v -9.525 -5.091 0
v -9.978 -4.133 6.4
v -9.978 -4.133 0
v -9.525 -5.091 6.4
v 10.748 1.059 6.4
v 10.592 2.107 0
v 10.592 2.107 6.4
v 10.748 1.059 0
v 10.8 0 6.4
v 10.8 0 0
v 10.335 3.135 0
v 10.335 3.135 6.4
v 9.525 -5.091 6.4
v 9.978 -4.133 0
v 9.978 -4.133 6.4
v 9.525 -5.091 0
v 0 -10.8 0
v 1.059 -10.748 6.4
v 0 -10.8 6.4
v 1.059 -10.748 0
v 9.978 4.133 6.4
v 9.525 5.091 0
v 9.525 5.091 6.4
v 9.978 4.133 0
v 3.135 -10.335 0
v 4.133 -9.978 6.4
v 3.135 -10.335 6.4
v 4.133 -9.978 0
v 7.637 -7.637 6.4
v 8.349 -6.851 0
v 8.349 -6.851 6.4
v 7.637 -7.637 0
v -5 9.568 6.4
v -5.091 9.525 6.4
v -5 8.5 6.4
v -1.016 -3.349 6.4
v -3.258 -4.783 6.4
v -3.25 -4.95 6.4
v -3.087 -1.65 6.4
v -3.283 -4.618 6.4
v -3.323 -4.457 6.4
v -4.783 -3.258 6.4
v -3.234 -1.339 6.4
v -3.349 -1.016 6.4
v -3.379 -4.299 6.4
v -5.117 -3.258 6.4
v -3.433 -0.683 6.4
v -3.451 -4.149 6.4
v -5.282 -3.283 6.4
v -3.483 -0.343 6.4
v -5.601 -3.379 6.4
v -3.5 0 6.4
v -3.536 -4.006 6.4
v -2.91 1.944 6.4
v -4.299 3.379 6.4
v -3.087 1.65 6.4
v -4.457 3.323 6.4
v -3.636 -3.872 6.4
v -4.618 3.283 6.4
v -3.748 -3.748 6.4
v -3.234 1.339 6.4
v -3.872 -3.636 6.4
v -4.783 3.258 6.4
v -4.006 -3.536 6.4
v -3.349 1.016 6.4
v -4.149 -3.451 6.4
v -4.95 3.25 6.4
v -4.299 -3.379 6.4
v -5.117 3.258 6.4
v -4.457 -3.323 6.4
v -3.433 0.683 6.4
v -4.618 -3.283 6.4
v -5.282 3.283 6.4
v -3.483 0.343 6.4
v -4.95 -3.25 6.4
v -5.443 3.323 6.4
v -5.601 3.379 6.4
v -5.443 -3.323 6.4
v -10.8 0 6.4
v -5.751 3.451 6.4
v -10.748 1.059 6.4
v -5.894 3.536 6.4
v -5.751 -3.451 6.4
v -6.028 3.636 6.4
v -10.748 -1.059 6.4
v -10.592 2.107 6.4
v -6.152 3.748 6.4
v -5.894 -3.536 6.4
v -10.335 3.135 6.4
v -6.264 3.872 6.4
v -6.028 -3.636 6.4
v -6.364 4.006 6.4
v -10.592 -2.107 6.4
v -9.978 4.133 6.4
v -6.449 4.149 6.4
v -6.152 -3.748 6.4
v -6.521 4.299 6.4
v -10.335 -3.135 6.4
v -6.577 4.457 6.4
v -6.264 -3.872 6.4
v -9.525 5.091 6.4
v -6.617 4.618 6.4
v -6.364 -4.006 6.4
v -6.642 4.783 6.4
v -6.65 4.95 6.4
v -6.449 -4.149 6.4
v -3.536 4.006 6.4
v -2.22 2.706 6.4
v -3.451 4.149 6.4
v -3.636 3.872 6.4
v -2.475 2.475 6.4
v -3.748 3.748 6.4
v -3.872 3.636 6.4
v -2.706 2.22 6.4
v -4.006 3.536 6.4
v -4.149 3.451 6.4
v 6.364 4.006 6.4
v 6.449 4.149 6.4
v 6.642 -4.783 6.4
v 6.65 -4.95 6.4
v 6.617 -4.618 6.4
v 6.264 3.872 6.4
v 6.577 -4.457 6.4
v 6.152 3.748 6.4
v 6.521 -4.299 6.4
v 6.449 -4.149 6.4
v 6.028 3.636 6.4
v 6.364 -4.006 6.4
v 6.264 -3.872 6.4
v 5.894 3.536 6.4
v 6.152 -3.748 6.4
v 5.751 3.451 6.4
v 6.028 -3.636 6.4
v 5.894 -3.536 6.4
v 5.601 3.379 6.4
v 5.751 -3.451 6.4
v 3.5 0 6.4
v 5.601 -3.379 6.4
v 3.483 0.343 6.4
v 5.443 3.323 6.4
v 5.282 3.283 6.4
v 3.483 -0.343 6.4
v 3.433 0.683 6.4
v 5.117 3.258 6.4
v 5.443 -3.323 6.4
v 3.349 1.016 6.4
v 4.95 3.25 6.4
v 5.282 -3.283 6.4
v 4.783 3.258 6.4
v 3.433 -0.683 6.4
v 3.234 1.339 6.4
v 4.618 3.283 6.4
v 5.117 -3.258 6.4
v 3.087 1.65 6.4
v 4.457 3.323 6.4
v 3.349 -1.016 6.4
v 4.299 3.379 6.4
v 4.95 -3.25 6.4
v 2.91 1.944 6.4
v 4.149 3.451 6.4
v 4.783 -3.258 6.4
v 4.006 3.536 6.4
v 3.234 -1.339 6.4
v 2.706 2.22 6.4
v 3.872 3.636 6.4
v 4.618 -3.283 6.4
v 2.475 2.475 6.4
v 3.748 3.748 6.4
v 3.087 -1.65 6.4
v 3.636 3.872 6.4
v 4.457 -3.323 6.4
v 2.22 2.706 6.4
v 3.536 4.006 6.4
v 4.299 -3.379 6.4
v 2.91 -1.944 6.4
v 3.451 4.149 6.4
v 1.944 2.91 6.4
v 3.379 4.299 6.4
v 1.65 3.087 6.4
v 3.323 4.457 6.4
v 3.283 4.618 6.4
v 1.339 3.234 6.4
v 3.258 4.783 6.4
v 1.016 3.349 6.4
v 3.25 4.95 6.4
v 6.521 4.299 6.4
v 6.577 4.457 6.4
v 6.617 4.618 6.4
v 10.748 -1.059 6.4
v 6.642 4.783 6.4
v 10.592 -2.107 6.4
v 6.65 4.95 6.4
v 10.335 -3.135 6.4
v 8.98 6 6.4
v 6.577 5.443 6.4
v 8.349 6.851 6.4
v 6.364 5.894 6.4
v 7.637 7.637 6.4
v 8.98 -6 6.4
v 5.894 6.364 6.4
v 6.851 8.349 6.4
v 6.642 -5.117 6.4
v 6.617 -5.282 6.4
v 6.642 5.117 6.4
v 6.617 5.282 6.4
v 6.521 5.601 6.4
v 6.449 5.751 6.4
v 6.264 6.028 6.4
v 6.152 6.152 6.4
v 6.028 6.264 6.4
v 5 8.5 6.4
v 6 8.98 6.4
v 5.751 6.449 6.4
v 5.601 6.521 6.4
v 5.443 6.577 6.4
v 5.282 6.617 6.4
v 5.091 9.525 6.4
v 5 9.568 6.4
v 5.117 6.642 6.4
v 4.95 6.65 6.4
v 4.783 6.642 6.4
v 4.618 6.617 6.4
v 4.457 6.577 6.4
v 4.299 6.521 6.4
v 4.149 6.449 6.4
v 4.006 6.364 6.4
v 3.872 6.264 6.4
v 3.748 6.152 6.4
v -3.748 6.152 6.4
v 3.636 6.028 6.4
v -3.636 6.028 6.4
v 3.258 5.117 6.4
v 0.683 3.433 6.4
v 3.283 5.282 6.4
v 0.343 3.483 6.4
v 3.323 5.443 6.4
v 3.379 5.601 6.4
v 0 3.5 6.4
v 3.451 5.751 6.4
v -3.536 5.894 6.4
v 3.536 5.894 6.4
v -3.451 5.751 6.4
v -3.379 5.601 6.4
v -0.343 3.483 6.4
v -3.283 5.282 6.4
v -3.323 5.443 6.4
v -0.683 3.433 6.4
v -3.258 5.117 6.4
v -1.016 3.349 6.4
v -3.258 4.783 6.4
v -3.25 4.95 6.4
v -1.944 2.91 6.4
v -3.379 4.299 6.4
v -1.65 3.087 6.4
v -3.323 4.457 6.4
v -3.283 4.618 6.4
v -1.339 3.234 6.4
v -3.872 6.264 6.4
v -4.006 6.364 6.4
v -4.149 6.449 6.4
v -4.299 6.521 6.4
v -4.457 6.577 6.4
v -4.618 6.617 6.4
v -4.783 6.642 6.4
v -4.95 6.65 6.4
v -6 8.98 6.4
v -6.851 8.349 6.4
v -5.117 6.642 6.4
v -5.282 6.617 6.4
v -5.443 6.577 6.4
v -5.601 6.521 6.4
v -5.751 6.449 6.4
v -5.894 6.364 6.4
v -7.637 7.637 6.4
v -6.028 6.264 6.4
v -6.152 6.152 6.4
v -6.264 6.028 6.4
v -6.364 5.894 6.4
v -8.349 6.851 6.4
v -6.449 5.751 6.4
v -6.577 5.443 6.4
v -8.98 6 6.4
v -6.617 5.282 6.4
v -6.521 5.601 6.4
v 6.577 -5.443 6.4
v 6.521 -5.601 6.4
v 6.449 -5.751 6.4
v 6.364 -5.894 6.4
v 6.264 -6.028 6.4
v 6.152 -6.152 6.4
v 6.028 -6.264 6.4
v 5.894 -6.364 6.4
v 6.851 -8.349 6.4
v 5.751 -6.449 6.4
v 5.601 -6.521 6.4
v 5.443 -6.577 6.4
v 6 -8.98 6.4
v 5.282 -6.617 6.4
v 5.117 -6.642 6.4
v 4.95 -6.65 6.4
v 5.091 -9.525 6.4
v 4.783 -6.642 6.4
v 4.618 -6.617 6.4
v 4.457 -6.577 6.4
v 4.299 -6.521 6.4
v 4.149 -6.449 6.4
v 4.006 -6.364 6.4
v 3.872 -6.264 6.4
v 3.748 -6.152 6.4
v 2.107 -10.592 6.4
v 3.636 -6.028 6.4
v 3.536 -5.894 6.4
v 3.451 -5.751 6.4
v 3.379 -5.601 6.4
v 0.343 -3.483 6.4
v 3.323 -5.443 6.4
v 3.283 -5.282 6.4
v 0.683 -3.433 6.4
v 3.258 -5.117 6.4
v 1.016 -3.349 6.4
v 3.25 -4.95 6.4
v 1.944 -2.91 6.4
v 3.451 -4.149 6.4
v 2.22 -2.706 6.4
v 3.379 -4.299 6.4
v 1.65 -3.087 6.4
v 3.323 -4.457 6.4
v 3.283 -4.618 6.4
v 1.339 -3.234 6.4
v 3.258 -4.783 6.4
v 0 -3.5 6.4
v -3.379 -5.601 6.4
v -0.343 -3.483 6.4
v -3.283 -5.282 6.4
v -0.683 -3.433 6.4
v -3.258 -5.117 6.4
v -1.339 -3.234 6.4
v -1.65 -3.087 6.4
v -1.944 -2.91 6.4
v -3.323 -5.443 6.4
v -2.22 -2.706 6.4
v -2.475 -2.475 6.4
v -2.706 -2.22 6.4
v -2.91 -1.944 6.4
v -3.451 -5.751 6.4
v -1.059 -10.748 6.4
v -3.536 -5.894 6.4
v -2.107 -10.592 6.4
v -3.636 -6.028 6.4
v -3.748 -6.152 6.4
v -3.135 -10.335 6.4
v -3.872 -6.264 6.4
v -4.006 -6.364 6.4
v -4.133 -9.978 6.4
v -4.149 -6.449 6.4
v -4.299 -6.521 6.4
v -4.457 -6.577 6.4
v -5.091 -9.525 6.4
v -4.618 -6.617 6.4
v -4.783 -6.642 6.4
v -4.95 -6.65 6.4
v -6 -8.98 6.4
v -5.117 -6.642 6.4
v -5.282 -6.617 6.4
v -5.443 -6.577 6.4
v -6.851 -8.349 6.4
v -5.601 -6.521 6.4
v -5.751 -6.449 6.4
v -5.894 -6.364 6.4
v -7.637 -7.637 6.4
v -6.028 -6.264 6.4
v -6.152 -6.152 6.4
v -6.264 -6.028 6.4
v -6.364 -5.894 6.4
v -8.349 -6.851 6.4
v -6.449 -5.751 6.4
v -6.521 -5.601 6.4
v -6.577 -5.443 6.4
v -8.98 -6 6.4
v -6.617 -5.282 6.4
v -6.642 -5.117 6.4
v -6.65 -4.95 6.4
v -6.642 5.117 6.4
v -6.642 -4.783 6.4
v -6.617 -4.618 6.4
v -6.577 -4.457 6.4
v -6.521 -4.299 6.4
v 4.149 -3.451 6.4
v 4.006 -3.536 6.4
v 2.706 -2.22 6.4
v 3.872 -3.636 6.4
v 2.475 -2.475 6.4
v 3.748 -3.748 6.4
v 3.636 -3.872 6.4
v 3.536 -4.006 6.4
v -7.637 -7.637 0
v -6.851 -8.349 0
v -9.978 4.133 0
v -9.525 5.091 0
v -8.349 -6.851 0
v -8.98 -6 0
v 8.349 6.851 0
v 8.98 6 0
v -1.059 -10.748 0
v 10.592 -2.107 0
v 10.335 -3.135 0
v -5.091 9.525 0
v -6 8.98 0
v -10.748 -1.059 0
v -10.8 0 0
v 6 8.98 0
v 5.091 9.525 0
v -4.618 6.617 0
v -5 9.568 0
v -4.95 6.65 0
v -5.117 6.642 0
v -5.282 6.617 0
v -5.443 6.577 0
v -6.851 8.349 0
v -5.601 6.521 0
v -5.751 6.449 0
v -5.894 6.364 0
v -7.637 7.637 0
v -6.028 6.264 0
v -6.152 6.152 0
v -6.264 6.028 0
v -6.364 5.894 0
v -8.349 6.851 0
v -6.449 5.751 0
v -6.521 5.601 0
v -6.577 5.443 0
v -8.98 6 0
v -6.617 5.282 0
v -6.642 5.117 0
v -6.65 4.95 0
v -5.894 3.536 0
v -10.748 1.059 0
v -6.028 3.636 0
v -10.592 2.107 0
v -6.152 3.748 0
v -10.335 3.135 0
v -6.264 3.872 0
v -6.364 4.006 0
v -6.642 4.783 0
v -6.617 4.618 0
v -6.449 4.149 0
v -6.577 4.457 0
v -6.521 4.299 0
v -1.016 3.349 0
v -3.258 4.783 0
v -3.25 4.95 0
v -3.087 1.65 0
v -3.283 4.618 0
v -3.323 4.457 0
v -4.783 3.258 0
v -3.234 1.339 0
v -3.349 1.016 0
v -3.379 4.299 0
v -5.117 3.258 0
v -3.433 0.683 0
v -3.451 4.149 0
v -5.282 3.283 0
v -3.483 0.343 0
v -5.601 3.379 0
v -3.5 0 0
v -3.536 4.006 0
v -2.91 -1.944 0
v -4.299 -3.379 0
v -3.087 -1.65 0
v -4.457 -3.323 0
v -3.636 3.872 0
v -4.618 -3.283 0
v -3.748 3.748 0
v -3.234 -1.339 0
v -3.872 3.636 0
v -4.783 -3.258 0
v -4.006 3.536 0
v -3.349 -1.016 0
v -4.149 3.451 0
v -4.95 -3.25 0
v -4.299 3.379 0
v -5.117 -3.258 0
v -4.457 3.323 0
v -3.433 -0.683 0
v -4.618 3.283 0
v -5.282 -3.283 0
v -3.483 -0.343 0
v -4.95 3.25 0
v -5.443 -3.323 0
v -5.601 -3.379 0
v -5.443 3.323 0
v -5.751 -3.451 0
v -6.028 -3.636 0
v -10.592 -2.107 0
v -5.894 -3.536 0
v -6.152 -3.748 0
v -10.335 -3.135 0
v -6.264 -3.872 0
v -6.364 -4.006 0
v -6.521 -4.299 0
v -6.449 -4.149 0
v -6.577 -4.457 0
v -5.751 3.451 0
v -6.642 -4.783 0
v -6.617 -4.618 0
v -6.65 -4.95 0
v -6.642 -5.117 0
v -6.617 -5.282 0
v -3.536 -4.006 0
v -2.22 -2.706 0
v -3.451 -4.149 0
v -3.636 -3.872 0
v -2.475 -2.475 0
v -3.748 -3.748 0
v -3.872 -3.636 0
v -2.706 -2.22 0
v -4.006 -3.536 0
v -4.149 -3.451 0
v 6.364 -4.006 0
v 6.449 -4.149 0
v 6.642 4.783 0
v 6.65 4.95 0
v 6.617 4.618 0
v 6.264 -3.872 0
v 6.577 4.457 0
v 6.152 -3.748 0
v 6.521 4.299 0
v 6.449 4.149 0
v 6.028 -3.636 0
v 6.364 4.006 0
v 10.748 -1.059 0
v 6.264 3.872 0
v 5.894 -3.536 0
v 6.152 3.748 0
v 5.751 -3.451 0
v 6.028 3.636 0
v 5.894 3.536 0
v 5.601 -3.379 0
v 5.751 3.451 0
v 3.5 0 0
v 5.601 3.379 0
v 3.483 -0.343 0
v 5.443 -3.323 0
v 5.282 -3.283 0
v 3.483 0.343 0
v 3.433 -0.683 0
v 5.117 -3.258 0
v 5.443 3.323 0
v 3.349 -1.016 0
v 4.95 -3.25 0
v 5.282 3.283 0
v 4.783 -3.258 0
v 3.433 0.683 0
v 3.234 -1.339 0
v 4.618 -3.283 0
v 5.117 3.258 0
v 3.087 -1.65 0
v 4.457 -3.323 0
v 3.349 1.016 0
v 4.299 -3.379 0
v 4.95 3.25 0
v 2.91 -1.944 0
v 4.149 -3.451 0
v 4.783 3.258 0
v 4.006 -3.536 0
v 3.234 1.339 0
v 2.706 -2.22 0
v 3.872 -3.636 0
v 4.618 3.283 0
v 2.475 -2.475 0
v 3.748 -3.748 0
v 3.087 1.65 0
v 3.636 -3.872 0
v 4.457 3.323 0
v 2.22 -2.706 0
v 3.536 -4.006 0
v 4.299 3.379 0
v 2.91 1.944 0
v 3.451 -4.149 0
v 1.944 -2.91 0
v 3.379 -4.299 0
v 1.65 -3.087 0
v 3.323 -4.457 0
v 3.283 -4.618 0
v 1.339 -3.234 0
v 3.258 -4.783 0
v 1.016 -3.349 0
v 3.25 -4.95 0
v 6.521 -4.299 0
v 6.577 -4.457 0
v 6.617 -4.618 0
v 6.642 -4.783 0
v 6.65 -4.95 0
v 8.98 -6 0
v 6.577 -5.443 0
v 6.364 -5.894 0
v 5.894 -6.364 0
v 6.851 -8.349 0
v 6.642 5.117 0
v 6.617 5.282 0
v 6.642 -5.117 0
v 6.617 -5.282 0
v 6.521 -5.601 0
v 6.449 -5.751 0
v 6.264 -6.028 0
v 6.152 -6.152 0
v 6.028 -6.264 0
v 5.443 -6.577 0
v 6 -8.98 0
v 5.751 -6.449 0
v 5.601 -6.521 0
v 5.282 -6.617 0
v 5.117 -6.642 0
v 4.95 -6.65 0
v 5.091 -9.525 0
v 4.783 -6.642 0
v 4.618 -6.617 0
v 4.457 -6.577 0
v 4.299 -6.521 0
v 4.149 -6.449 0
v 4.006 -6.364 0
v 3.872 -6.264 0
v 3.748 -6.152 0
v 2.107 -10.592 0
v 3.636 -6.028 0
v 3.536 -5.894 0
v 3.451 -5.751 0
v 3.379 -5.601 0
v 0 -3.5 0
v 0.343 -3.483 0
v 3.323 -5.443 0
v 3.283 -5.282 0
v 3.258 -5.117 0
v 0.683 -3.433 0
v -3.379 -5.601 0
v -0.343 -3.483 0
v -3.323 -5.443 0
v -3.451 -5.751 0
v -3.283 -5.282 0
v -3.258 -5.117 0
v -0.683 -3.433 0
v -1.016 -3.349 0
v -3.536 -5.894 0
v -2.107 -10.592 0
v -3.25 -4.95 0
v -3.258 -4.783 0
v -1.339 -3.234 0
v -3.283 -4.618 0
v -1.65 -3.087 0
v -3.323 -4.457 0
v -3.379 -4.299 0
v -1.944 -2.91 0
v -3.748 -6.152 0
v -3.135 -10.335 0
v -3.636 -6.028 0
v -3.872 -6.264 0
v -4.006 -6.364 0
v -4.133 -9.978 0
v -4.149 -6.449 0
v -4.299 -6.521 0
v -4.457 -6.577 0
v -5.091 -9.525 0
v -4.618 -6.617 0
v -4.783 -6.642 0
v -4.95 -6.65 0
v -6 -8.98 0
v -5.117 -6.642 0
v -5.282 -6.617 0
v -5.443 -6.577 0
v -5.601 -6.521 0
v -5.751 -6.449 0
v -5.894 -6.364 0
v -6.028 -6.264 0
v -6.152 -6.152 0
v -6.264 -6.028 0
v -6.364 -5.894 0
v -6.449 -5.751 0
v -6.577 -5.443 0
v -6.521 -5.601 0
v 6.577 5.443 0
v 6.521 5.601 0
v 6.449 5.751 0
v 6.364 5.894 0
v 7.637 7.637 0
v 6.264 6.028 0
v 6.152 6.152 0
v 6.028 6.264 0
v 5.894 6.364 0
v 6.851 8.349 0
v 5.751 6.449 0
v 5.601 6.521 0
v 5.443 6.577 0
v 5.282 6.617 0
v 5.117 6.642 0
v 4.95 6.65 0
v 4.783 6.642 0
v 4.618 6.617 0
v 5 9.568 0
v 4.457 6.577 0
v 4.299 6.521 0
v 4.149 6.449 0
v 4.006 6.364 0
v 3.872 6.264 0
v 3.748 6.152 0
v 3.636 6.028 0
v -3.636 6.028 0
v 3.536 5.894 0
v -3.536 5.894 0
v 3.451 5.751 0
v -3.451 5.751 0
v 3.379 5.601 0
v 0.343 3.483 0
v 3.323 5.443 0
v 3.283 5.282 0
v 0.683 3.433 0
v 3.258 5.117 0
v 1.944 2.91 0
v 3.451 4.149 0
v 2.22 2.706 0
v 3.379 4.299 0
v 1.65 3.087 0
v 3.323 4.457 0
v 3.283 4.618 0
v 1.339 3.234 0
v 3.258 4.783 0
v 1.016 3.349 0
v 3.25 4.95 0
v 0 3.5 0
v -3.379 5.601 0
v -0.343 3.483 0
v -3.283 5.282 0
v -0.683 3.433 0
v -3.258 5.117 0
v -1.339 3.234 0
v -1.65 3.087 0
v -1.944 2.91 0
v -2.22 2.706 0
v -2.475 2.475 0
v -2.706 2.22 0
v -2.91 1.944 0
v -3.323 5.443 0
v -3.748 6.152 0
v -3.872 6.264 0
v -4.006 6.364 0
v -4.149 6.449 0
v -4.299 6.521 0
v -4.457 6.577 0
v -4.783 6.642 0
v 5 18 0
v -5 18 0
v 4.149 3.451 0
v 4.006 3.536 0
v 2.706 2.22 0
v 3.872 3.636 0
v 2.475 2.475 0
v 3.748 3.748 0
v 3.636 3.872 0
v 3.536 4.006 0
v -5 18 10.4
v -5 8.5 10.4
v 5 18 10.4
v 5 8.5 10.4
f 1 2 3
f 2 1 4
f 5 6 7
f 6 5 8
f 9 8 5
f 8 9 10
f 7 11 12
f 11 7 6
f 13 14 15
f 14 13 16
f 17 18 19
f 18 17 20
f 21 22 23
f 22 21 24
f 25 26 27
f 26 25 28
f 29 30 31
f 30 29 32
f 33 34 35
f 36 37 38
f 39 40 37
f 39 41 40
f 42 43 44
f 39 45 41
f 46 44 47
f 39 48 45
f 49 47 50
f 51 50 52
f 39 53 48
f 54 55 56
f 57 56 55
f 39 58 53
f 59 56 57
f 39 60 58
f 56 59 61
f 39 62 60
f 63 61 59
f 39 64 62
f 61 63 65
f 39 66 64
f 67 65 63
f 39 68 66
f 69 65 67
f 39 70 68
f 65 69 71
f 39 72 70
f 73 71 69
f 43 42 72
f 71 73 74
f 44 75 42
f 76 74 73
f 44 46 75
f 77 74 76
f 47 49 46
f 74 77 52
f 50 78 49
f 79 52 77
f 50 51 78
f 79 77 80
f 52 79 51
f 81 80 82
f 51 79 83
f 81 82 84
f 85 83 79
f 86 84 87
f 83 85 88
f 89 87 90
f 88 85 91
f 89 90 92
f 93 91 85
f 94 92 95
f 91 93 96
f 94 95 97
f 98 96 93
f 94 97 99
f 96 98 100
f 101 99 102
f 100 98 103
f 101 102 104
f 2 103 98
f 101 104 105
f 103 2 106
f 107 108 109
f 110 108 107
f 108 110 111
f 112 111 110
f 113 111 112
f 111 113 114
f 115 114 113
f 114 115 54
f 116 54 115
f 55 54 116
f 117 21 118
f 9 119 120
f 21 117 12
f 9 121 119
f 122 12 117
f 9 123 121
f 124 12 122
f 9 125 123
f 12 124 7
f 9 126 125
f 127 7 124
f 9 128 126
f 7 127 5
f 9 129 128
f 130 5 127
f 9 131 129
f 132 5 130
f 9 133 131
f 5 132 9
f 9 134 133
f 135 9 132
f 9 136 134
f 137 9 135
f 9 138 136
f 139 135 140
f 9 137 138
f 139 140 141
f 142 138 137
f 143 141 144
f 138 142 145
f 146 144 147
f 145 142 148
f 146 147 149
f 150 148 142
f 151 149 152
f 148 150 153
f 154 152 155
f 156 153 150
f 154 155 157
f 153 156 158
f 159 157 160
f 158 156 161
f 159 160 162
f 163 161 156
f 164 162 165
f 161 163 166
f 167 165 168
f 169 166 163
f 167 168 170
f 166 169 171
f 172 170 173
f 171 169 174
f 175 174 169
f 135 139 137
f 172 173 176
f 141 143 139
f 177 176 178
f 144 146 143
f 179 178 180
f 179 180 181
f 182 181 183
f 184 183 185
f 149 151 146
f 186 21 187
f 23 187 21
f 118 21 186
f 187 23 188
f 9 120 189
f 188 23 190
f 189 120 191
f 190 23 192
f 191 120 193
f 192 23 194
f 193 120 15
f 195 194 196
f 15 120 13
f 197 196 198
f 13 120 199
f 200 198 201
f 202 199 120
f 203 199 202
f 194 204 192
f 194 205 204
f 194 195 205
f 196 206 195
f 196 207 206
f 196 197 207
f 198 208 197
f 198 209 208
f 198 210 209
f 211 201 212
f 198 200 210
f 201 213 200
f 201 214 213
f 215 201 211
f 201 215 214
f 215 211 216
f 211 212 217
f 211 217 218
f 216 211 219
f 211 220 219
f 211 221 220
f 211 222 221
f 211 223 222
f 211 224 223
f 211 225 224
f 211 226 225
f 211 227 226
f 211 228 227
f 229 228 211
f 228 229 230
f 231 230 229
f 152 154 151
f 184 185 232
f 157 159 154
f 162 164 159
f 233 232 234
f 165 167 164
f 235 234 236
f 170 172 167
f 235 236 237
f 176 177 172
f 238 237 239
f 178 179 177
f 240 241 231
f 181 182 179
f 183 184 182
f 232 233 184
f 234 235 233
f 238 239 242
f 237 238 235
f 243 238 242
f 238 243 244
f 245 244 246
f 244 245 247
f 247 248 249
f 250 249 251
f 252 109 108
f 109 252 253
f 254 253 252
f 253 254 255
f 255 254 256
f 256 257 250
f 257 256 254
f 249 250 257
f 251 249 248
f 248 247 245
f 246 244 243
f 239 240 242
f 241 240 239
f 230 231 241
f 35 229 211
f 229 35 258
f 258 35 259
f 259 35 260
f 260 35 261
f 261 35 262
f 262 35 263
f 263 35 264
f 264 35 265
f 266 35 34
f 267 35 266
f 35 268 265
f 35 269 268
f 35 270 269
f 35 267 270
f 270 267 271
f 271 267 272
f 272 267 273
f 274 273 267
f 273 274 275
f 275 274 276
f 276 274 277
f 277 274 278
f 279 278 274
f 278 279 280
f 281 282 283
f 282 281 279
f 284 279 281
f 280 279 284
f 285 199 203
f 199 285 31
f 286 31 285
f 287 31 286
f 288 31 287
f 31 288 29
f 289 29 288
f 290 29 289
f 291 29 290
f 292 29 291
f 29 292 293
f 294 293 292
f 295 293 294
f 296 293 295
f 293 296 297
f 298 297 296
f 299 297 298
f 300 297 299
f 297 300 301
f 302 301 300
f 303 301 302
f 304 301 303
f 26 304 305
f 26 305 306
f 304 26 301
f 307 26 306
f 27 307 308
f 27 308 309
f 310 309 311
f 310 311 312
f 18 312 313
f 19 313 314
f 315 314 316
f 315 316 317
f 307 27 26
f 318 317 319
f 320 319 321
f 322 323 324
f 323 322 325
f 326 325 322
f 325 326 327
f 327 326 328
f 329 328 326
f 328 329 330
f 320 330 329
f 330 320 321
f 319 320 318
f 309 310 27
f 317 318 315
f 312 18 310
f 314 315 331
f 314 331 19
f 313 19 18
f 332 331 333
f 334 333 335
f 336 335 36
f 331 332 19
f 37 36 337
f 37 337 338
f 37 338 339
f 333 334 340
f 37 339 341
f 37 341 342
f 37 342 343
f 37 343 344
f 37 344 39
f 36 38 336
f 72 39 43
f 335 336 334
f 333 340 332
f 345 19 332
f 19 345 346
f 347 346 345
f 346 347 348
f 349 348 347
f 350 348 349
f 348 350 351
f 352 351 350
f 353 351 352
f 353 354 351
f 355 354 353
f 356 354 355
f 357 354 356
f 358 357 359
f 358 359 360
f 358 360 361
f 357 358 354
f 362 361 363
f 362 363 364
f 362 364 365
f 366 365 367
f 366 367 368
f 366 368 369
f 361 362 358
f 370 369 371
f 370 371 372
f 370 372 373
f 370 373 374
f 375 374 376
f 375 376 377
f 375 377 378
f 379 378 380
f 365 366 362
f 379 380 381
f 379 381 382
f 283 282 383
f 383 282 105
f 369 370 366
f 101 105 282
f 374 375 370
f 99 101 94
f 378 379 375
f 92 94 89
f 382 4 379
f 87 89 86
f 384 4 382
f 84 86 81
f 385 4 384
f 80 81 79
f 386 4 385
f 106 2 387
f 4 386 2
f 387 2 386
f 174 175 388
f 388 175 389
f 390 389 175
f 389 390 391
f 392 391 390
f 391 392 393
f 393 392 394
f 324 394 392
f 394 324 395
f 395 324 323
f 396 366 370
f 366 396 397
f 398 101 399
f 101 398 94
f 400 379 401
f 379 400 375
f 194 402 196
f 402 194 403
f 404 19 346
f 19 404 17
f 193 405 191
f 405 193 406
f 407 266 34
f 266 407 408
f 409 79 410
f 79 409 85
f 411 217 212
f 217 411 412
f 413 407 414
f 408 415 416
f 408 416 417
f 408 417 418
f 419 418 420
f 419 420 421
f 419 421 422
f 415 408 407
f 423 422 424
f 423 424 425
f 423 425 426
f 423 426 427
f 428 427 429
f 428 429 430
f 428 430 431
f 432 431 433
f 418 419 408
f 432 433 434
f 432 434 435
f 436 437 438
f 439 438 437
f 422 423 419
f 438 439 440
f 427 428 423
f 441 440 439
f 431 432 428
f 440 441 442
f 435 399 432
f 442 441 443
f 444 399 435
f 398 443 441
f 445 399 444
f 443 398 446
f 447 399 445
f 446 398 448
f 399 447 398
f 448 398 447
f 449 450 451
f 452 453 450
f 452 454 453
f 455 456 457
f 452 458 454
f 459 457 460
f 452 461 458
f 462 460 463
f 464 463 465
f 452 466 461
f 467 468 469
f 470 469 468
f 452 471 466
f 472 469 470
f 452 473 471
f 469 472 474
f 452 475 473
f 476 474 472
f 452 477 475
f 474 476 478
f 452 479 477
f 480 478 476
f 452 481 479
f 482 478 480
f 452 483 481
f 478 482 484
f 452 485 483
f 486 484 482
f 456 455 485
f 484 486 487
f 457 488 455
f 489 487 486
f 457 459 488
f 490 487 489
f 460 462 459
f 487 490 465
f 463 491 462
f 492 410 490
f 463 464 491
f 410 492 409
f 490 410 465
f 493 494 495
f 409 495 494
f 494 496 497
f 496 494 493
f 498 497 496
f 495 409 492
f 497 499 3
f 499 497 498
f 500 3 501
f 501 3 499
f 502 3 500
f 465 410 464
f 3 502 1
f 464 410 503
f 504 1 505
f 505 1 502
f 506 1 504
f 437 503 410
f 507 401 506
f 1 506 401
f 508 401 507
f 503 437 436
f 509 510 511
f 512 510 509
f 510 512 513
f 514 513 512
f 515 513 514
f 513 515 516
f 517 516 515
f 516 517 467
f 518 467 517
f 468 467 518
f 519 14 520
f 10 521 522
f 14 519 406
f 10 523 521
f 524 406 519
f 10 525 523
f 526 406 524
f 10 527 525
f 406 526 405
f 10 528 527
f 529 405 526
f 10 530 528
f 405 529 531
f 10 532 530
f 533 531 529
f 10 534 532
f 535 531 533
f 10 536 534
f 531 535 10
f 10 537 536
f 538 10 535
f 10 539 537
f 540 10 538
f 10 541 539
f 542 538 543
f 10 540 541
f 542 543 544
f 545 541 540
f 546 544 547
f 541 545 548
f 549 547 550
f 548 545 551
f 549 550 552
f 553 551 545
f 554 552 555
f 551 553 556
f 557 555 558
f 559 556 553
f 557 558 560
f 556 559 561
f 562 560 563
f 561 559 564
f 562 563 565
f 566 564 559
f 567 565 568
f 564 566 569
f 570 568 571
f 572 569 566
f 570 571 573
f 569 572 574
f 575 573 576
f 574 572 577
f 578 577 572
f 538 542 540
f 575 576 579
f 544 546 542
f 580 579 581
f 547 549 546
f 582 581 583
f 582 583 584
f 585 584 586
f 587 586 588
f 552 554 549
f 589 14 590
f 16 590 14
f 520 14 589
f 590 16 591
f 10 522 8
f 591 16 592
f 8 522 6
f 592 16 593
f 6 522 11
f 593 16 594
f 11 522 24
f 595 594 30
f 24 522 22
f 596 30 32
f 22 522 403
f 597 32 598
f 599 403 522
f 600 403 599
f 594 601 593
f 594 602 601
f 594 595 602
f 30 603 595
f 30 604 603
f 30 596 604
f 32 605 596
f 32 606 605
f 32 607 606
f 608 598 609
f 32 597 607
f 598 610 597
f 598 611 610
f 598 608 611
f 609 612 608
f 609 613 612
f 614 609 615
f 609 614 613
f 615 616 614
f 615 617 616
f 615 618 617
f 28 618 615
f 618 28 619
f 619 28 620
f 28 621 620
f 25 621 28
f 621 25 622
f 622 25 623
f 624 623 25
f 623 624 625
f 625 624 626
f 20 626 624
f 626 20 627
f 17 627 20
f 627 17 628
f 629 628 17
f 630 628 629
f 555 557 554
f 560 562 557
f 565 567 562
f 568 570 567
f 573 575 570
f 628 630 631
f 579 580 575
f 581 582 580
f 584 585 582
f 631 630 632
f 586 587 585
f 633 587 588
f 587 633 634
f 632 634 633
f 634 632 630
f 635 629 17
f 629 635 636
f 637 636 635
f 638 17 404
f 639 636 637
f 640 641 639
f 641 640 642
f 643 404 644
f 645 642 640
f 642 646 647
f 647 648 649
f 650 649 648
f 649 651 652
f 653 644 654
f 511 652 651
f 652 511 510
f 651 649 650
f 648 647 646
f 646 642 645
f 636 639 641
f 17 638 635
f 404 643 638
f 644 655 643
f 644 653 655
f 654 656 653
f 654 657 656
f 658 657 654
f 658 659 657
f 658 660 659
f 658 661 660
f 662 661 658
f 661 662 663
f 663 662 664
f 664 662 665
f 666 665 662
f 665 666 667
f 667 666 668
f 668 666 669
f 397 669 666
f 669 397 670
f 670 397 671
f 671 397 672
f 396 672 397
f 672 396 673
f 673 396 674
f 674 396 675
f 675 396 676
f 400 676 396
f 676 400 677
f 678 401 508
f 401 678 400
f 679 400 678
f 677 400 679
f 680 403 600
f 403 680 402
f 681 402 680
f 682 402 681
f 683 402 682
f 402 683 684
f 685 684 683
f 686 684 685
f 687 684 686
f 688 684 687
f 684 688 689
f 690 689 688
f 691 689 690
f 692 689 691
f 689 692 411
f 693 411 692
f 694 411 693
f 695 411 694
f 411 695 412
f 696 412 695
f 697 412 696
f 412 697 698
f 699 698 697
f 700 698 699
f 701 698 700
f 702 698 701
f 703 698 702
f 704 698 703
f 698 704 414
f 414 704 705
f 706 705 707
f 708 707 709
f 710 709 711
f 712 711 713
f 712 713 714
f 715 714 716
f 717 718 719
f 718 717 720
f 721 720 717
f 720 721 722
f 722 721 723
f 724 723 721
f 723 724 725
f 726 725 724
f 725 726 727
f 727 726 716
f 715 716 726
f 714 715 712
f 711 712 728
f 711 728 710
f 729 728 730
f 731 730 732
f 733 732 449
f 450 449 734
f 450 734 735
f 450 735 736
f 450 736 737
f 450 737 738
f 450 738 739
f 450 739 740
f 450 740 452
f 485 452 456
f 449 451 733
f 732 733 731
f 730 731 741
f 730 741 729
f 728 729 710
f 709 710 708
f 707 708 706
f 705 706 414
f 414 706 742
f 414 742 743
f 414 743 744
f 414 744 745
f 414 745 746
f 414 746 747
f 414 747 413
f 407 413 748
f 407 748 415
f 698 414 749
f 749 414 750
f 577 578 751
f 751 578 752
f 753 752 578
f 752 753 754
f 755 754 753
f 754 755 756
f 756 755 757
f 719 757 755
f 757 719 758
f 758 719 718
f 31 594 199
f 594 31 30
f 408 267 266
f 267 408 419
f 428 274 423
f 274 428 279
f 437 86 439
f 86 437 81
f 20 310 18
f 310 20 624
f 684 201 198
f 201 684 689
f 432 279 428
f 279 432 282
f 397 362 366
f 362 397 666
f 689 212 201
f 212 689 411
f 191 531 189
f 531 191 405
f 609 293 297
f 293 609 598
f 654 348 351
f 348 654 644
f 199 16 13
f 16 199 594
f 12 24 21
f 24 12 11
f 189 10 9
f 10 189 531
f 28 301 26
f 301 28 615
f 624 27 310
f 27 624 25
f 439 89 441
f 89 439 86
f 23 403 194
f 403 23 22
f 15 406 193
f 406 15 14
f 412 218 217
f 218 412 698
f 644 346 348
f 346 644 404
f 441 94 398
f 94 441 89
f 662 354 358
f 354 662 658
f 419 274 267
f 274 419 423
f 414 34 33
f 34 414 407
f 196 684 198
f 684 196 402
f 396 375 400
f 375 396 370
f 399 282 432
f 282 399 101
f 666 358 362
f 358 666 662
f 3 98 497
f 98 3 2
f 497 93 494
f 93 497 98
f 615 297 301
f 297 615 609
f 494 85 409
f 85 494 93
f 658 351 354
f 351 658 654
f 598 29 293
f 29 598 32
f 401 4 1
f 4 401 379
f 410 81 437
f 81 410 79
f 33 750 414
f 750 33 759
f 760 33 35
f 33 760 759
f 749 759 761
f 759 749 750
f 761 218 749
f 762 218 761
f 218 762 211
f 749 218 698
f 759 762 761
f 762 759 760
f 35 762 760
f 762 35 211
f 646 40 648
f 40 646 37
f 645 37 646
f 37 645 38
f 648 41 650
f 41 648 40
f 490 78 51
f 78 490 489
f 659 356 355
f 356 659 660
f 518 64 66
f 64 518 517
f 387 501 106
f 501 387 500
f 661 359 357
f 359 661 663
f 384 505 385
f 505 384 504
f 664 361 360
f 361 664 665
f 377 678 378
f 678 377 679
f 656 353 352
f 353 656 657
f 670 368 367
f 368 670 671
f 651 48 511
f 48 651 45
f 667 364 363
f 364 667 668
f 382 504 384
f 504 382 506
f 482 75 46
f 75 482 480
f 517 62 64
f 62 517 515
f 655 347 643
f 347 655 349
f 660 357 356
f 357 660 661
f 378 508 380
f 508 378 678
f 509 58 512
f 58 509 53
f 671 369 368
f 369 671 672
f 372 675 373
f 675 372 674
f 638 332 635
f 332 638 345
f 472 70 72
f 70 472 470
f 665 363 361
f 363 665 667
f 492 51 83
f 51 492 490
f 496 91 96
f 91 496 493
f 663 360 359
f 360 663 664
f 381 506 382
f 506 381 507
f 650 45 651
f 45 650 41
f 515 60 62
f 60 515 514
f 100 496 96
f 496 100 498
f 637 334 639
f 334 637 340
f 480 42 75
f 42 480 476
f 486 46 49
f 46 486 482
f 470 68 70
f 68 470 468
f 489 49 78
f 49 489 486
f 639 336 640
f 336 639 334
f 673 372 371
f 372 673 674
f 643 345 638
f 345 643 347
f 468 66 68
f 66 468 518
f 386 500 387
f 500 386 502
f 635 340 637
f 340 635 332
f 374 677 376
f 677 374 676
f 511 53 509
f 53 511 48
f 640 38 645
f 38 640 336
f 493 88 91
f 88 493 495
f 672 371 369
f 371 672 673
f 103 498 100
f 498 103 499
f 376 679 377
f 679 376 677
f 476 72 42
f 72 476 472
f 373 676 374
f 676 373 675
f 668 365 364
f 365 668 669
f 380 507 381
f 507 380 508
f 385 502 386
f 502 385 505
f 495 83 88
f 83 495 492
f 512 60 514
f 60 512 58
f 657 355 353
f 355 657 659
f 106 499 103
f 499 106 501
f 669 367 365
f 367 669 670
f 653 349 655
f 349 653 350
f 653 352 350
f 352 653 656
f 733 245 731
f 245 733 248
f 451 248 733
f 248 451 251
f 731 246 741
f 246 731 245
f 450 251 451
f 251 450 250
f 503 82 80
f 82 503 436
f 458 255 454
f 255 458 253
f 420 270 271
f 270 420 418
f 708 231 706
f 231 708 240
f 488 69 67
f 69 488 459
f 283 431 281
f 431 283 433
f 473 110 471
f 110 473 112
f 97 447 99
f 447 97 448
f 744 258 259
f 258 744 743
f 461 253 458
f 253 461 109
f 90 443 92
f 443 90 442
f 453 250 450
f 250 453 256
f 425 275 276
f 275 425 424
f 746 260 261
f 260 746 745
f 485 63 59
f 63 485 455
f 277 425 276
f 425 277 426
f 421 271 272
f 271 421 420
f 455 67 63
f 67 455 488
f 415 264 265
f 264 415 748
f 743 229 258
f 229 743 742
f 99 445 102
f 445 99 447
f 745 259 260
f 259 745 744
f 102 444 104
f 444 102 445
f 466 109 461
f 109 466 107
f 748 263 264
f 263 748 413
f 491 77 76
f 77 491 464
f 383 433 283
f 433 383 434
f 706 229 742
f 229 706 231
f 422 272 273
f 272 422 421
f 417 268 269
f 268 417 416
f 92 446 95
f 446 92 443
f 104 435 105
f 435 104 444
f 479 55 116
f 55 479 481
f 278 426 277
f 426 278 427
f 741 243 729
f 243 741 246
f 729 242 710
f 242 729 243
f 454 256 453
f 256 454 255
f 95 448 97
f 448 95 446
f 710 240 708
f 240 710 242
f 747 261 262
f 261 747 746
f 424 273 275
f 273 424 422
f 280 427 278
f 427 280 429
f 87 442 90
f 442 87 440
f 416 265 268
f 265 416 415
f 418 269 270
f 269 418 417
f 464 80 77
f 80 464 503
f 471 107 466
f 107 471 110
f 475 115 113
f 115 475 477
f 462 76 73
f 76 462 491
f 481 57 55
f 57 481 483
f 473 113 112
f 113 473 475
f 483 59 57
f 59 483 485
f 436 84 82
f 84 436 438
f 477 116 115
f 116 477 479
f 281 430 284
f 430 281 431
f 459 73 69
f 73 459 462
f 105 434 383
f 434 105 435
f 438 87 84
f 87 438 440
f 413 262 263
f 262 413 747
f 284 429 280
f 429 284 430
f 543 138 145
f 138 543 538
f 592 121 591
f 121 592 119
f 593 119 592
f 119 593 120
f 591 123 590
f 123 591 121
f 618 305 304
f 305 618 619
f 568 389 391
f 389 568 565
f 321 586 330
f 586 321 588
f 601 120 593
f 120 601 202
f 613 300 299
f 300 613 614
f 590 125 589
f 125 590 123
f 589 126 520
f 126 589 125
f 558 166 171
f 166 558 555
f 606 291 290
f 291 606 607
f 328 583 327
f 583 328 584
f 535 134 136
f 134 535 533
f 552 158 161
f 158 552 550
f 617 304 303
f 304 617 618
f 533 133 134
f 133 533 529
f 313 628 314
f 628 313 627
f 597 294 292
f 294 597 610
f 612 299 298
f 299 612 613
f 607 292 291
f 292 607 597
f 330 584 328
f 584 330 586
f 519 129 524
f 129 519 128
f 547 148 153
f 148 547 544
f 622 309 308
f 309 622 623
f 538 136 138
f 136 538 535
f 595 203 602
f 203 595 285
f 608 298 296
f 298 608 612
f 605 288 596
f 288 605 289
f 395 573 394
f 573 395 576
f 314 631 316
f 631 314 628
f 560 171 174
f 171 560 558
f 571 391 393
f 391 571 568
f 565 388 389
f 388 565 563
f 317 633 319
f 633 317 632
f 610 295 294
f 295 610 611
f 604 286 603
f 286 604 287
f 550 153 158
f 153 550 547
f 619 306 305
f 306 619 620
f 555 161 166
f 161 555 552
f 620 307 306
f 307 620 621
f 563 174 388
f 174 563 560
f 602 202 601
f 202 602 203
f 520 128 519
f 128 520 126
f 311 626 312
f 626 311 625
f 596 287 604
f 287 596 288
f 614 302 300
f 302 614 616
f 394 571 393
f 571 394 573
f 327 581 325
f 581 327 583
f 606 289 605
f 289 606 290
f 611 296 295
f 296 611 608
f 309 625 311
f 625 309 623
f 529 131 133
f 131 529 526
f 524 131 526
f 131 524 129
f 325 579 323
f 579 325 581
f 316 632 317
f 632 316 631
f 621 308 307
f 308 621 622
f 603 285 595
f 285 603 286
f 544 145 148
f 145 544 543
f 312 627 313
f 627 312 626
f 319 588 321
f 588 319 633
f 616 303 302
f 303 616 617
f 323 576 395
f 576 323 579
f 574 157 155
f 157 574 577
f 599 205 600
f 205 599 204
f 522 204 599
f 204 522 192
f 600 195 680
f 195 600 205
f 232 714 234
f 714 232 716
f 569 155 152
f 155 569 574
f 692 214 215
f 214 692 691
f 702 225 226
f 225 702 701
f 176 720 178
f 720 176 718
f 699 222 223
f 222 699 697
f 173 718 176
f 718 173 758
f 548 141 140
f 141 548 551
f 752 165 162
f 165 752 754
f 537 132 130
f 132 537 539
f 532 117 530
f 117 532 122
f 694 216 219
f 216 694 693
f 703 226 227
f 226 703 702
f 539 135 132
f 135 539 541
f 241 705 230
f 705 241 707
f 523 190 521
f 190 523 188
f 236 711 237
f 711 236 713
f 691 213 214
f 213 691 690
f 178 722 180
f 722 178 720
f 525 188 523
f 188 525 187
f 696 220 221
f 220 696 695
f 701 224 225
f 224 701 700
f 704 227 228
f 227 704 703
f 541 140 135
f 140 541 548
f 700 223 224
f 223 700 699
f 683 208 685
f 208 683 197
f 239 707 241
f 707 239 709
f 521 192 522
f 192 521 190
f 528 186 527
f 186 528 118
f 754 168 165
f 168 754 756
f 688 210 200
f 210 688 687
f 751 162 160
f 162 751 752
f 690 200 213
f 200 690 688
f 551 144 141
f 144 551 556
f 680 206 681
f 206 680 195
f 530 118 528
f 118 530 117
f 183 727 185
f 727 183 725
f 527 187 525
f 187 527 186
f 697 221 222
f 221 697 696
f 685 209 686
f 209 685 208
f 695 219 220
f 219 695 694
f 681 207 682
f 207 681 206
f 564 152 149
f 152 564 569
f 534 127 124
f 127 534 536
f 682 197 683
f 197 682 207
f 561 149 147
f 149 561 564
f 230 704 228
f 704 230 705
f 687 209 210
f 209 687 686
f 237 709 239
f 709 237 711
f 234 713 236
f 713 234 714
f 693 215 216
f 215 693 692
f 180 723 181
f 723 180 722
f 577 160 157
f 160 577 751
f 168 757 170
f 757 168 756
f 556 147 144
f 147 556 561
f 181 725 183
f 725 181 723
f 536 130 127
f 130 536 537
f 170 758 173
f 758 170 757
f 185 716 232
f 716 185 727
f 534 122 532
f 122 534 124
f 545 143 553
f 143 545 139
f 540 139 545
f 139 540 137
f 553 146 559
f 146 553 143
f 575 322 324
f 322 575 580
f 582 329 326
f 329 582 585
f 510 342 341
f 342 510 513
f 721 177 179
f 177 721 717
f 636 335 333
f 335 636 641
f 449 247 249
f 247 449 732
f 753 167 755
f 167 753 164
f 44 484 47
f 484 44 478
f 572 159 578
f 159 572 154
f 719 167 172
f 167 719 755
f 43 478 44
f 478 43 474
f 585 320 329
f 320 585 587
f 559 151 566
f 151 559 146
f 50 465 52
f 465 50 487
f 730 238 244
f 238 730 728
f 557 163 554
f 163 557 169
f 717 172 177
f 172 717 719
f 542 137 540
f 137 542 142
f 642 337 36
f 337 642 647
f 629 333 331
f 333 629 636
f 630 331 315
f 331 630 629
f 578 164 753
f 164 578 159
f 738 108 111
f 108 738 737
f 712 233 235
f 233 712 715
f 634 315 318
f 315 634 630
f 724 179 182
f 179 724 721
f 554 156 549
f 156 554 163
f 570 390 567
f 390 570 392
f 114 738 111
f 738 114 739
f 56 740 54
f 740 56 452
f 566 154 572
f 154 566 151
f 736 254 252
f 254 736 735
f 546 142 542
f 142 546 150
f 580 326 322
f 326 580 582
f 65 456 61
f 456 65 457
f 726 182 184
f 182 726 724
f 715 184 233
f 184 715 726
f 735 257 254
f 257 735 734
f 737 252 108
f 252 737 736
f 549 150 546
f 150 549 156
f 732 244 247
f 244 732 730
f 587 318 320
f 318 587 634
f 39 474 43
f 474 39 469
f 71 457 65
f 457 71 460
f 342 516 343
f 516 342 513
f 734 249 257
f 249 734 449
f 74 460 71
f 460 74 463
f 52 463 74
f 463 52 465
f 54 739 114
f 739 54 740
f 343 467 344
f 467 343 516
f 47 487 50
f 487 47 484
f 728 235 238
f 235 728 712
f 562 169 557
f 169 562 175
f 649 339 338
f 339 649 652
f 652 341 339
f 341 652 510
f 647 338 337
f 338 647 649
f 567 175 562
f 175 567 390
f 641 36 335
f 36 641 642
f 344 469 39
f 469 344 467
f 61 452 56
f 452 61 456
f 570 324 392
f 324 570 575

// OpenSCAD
// file: ../params.scad
// =====================================================================
//  Pip v2 — assembly-first robot dog. Shared parameters (mm).
//  Design rules: docs/ASSEMBLY_FIRST_DESIGN.md §3. Every part is built
//  by straight-down moves; the precision lives in the parts.
//  Keep in sync with software/config.yaml (tests/test_cad_sync.py checks).
// =====================================================================
$fn = 64;

// ---------- Feetech STS3215 bus servo (12 V, 30 kg·cm) ------------------
// Measured from the SO-ARM100 project's STS3215 model. Servo frame used
// below: origin = output axis on the case top face, +Z = shaft, +X = long
// axis from the shaft toward the far end of the case.
servo_len       = 45.4;
servo_wid       = 24.8;
servo_case_h    = 32.0;   // top face -> case bottom
servo_bottom    = 4.0;    // rear idler disc + connector pins below the case
servo_shaft_off = 10.2;   // shaft centre -> near end of the case
horn_d          = 20.0;   // aluminium disc horn
horn_t          = 1.6;
horn_hole_sq    = 9.9;    // 4 tapped M3 holes on a 9.9 mm square
horn_screw_clear_d = 7.0; // centre spline-screw head clearance
servo_mass_g    = 55;     // assumed (not measured)

// ---------- one fastener for everything: M3 x 8 socket head -----------
screw_len   = 8;
m3_clear    = 3.4;
m3_pilot    = 2.6;        // self-tapping an M3 machine screw into PETG
fit         = 0.3;        // clearance around servo cases & docks
lead_in     = 1.5;        // chamfer on every mating edge (capture range)

// ---------- servo cup (the one standard servo holder) ------------------
cup_side    = 3.5;
cup_end     = 8.0;        // end walls carry the cap screws
cup_floor   = 2.5;
cup_depth   = servo_case_h + servo_bottom + cup_floor;     // 38.5
cup_x0      = -servo_shaft_off - fit - cup_end;            // -18.5
cup_x1      = servo_len - servo_shaft_off + fit + cup_end; //  43.5
cup_hw      = servo_wid / 2 + fit + cup_side;              //  16.2
cap_t       = 1.2;        // thinner than the horn so links clear it
cap_screw_x = [cup_x0 + cup_end / 2, cup_x1 - cup_end / 2];
cap_screw_y = 9;

// link plates bolt straight onto the horn: plate + horn = screw length
link_t      = screw_len - horn_t;                          // 6.4

// ---------- grip lug (rule 7): flats 20 mm apart + 3 mm datum notch ----
lug_w = 20; lug_h = 8; datum = 3;

// ---------- body / leg layout (body frame: X fwd, Y left, Z up) -------
bx        = 95;    // hip axis X (front +, rear -)
rim_y     = 45;    // |Y| of the pitch servo top face = tray side face
L2        = 100;   // hip axis -> knee axis
L3        = 100;   // knee axis -> foot ball centre
foot_d    = 22;
// lateral stack, measured outward from the pitch-servo top face
upper_in  = rim_y + horn_t;            // 46.6
upper_out = upper_in + link_t;         // 53.0 = knee servo top face
lower_in  = upper_out + horn_t;        // 54.6
lower_out = lower_in + link_t;         // 61.0
foot_y    = (lower_in + lower_out) / 2;// 57.8  (software: geometry.foot_y)

// tray
tray_wall   = 3;
tray_floor  = 3;
tray_z0     = cup_x0 - tray_floor;     // -21.5 (hip block bottom = floor top)
tray_z1     = cup_x1;                  //  43.5 (hip block top = deck bottom)
sock_wall   = 3;
sock_hw     = cup_hw + fit;            // socket half width in X
tongue_w    = 5; tongue_d = 2.5;
tongue_y    = -(rim_y - cup_depth / 2);// tongue centre (Y, right side)
sock_in_y   = -(rim_y - cup_depth) + fit;   // socket inboard wall inner face
tray_hx     = bx + sock_hw + tongue_d + sock_wall + 0.5;
deck_t      = 3;

// neck: pan servo cup built into the tray, rim just above the deck
pan_x     = 53;
pan_rim_z = tray_z1 + deck_t + 0.1;    // 46.6
bracket_z0 = pan_rim_z + horn_t;       // pan bracket sits on the horn
bracket_z1 = bracket_z0 + link_t;
// tilt servo stands upright in a sleeve on the bracket, shaft -> -Y
tilt_top_y = -14;                      // tilt servo top face (Y)
tilt_rest  = 3.5;                      // servo rests on ribs clear of the pan-horn screw heads
tilt_z     = bracket_z1 + tilt_rest + fit + (servo_len - servo_shaft_off); // tilt axis Z
sleeve_wall = 6;                       // thick X walls take the cap screws

echo(str("foot_y=", foot_y, "  tray=", 2*tray_hx, " x ", 2*rim_y,
         "  tilt axis z=", tilt_z));
// main file
// Print 1x, horn face down (key up). PETG, 100% infill.
include <../lib.scad>
translate([-pan_x, 0, hub_y0]) rotate([-90, 0, 0]) translate([0, 0, -tilt_z]) tilt_hub();
